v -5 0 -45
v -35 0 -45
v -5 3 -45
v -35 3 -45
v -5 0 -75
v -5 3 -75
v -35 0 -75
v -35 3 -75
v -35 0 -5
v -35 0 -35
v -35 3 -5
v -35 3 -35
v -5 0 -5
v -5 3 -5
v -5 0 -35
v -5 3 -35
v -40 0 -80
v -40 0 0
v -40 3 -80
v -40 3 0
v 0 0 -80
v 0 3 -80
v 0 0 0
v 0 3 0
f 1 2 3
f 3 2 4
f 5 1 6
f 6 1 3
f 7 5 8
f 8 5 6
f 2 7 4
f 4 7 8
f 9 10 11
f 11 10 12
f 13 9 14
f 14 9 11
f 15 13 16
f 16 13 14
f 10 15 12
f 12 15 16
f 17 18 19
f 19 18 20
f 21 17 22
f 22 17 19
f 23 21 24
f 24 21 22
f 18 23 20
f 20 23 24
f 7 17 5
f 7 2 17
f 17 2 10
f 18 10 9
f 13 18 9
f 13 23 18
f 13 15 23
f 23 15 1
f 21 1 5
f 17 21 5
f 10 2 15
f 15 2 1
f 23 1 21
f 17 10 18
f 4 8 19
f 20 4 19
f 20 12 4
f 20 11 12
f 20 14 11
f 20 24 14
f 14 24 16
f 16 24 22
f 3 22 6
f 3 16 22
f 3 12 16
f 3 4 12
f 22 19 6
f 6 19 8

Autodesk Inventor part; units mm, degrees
ref_plane "YZ Plane" through (0, 0, 0) normal (1, 0, 0) x (0, 1, 0)
ref_plane "XZ Plane" through (0, 0, 0) normal (0, 1, 0) x (-1, 0, 0)
ref_plane "XY Plane" through (0, 0, 0) normal (0, 0, 1) x (1, 0, 0)
sketch "Sketch1" plane through (0, 0, 0) normal (0, 1, 0) x (-1, 0, 0)
  line L0 (0, 0) -> (40, 0)
  line L1 (40, 0) -> (40, -80)
  line L2 (40, -80) -> (0, -80)
  line L3 (0, -80) -> (0, 0)
  dimension "d0" = 40
  dimension "d1" = 80
extrude "Extrusion1" add sketch "Sketch1" along normal blind 3
sketch "Sketch3" plane through (0, 3, 0) normal (0, 1, 0) x (1, 0, 0)
  line L0 (-40, 0) -> (0, 0) projected
  line L1 (-40, 0) -> (-40, 5)
  line L2 (-35, 5) -> (-5, 5)
  line L3 (0, 5) -> (0, 35)
  line L4 (0, 0) -> (0, 80) projected
  line L5 (-5, 35) -> (-35, 35)
  line L6 (-40, 80) -> (-40, 0) projected
  line L7 (-40, 35) -> (-40, 45)
  line L8 (0, 45) -> (-35, 45)
  line L9 (0, 45) -> (0, 75)
  line L10 (-5, 75) -> (-35, 75)
  line L11 (0, 80) -> (-40, 80) projected
  line L12 (-40, 80) -> (-35, 80)
  line L13 (0, 80) -> (-5, 80)
  line L14 (-5, 75) -> (-5, 45)
  line L15 (-5, 35) -> (-5, 5)
  line L16 (-35, 75) -> (-35, 45)
  line L17 (-35, 35) -> (-35, 5)
  dimension "d4" = 5
  dimension "d5" = 30
  dimension "d6" = 10
  dimension "d7" = 30
  dimension "d8" = 5
  dimension "d9" = 5
extrude "Extrusion2" cut sketch "Sketch3" against normal through all contours L8 L16 L10 L14 | L17 L5 L15 L2
properties part number "ClawExtender"
